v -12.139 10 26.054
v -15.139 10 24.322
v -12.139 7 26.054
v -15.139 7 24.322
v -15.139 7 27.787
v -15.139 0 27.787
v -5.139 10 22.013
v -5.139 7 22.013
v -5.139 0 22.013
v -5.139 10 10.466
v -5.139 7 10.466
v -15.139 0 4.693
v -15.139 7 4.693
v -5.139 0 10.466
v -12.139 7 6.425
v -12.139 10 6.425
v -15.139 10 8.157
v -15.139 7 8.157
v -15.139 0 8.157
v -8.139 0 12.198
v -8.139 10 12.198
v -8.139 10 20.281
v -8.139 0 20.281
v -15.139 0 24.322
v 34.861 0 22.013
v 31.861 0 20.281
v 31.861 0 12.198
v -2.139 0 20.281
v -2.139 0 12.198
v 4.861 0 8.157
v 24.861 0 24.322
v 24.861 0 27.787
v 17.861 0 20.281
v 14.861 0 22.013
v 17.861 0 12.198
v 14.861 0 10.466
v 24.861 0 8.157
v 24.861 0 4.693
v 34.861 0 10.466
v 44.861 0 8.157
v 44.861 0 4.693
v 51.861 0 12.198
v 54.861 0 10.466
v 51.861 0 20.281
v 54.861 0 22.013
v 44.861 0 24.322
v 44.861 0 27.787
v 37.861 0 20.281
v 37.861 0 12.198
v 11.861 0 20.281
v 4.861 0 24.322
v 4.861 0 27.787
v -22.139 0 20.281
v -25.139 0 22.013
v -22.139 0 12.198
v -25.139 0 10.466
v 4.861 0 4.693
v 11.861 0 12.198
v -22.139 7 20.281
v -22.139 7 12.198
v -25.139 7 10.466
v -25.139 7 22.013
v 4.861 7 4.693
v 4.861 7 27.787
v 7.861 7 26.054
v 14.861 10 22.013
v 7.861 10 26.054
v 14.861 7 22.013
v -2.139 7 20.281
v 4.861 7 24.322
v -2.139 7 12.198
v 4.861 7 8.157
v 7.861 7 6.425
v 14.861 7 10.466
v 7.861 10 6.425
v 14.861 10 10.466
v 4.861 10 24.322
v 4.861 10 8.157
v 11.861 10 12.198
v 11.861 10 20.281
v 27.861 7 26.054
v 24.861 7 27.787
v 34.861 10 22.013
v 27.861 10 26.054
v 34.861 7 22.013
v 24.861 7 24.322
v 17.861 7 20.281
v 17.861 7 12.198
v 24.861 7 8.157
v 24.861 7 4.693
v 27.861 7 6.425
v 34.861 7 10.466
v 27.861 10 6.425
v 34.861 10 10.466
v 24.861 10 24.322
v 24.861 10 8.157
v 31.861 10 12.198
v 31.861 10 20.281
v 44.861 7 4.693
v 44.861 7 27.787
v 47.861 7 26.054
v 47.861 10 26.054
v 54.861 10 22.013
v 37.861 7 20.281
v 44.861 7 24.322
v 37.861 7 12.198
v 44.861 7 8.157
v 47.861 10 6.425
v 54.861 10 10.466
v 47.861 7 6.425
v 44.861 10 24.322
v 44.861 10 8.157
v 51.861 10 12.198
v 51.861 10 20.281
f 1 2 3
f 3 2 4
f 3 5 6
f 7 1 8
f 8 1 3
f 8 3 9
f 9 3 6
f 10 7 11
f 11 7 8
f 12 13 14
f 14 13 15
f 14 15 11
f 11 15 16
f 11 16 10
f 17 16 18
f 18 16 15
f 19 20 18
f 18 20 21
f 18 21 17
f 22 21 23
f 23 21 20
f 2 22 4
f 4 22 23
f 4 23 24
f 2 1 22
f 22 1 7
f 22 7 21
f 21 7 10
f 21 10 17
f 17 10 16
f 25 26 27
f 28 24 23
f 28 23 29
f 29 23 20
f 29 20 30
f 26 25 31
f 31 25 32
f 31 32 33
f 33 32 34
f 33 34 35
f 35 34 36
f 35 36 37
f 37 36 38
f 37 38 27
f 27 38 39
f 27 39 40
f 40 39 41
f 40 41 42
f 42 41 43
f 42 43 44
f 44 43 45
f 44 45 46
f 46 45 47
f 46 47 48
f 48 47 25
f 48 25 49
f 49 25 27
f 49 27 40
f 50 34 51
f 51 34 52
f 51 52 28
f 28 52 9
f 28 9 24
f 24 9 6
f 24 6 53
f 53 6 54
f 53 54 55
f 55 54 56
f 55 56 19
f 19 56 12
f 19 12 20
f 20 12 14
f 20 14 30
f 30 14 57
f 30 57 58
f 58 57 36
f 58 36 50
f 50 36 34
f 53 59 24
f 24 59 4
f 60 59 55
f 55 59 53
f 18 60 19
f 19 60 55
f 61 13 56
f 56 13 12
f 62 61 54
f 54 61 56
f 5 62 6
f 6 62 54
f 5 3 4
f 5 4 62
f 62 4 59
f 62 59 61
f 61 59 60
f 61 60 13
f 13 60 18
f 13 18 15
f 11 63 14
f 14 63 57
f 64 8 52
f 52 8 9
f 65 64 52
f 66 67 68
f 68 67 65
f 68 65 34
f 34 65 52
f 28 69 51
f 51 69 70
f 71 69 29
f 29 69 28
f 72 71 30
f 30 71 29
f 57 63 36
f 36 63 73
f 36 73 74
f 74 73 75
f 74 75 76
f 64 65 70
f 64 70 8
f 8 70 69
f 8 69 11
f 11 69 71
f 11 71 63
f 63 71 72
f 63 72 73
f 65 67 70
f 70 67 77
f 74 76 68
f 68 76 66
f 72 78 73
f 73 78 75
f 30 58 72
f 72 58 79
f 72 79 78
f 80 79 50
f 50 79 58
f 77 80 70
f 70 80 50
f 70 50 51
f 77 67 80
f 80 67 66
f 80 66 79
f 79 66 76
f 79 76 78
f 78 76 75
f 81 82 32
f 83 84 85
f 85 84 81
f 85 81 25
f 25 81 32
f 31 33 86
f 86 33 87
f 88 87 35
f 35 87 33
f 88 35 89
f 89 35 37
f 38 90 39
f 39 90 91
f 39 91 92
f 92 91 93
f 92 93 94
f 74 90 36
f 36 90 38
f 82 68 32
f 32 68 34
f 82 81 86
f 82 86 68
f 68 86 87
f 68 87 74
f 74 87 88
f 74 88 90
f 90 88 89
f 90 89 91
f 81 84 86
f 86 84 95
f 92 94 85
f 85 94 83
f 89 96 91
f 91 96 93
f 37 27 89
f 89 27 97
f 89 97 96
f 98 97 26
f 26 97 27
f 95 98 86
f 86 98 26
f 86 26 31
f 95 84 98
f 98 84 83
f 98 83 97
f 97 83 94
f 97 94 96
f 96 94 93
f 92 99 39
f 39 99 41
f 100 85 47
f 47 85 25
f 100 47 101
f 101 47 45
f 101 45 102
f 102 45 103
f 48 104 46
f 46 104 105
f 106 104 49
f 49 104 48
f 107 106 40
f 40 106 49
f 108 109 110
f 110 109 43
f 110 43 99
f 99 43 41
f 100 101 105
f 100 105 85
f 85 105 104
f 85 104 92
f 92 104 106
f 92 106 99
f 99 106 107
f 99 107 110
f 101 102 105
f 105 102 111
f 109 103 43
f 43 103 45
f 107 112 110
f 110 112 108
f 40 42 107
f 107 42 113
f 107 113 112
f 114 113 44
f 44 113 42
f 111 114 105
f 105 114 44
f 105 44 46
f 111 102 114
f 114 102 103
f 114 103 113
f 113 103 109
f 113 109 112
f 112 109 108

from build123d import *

# Parameters (mm, degrees)
BOSS_EXTRUDE3_DEPTH   = 10
BOSS_EXTRUDE3_2_DEPTH = 10
BOSS_EXTRUDE3_3_DEPTH = 10
BOSS_EXTRUDE3_4_DEPTH = 10
BOSS_EXTRUDE4_DEPTH   = 7


with BuildPart() as part:
    # Sketch1 → Boss-Extrude3 (new body)
    with BuildSketch(Plane(origin=(0, 0, 0), x_dir=(1, 0, 0), z_dir=(0, 1, 0))):
        Polygon((54.860811185, -22.01303097), (54.860811185, -10.466025586), (47.860811185, -6.424573702), (44.860811185, -8.156624509), (51.860811185, -12.198076394), (51.860811185, -20.280980162), (44.860811185, -24.322432047), (47.860811185, -26.054482854), align=None)
    extrude(amount=BOSS_EXTRUDE3_DEPTH)



with BuildPart() as body_2:
    # Sketch1 → Boss-Extrude3 2 (new body)
    with BuildSketch(Plane(origin=(0, 0, 0), x_dir=(1, 0, 0), z_dir=(0, 1, 0))):
        Polygon((-12.139188815, -6.424573702), (-15.139188815, -8.156624509), (-8.139188815, -12.198076394), (-8.139188815, -20.280980162), (-15.139188815, -24.322432047), (-12.139188815, -26.054482854), (-5.139188815, -22.01303097), (-5.139188815, -10.466025586), align=None)
    extrude(amount=BOSS_EXTRUDE3_2_DEPTH)


with BuildPart() as body_3:
    # Sketch1 → Boss-Extrude3 3 (new body)
    with BuildSketch(Plane(origin=(0, 0, 0), x_dir=(1, 0, 0), z_dir=(0, 1, 0))):
        Polygon((34.860811185, -10.466025586), (27.860811185, -6.424573702), (24.860811185, -8.156624509), (31.860811185, -12.198076394), (31.860811185, -20.280980162), (24.860811185, -24.322432047), (27.860811185, -26.054482854), (34.860811185, -22.01303097), align=None)
    extrude(amount=BOSS_EXTRUDE3_3_DEPTH)


with BuildPart() as body_4:
    # Sketch1 → Boss-Extrude3 4 (new body)
    with BuildSketch(Plane(origin=(0, 0, 0), x_dir=(1, 0, 0), z_dir=(0, 1, 0))):
        Polygon((7.860811185, -6.424573702), (4.860811185, -8.156624509), (11.860811185, -12.198076394), (11.860811185, -20.280980162), (4.860811185, -24.322432047), (7.860811185, -26.054482854), (14.860811185, -22.01303097), (14.860811185, -10.466025586), align=None)
    extrude(amount=BOSS_EXTRUDE3_4_DEPTH)


with BuildPart() as part_1:
    add(part.part)

    add(body_2.part)  # Boss-Extrude4 merges body 2

    add(body_3.part)  # Boss-Extrude4 merges body 3

    add(body_4.part)  # Boss-Extrude4 merges body 4
    # Sketch1<8> → Boss-Extrude4 (add)
    with BuildSketch(Plane(origin=(0, 0, 0), x_dir=(1, 0, 0), z_dir=(0, 1, 0))):
        Polygon((-22.139188815, -12.198076394), (-12.139188815, -6.424573702), (-15.139188815, -4.692522894), (-25.139188815, -10.466025586), (-25.139188815, -22.01303097), (-15.139188815, -27.786533662), (-12.139188815, -26.054482854), (-22.139188815, -20.280980162), align=None)
        Polygon((44.860811185, -8.156624509), (47.860811185, -6.424573702), (44.860811185, -4.692522894), (34.860811185, -10.466025586), (34.860811185, -22.01303097), (44.860811185, -27.786533662), (47.860811185, -26.054482854), (37.860811185, -20.280980162), (37.860811185, -12.198076394), align=None)
        Polygon((-2.139188815, -12.198076394), (7.860811185, -6.424573702), (4.860811185, -4.692522894), (-5.139188815, -10.466025586), (-5.139188815, -22.01303097), (4.860811185, -27.786533662), (7.860811185, -26.054482854), (-2.139188815, -20.280980162), align=None)
        Polygon((27.860811185, -6.424573702), (24.860811185, -4.692522894), (14.860811185, -10.466025586), (14.860811185, -22.01303097), (24.860811185, -27.786533662), (27.860811185, -26.054482854), (17.860811185, -20.280980162), (17.860811185, -12.198076394), align=None)
    extrude(amount=BOSS_EXTRUDE4_DEPTH)


solid = part_1.part
